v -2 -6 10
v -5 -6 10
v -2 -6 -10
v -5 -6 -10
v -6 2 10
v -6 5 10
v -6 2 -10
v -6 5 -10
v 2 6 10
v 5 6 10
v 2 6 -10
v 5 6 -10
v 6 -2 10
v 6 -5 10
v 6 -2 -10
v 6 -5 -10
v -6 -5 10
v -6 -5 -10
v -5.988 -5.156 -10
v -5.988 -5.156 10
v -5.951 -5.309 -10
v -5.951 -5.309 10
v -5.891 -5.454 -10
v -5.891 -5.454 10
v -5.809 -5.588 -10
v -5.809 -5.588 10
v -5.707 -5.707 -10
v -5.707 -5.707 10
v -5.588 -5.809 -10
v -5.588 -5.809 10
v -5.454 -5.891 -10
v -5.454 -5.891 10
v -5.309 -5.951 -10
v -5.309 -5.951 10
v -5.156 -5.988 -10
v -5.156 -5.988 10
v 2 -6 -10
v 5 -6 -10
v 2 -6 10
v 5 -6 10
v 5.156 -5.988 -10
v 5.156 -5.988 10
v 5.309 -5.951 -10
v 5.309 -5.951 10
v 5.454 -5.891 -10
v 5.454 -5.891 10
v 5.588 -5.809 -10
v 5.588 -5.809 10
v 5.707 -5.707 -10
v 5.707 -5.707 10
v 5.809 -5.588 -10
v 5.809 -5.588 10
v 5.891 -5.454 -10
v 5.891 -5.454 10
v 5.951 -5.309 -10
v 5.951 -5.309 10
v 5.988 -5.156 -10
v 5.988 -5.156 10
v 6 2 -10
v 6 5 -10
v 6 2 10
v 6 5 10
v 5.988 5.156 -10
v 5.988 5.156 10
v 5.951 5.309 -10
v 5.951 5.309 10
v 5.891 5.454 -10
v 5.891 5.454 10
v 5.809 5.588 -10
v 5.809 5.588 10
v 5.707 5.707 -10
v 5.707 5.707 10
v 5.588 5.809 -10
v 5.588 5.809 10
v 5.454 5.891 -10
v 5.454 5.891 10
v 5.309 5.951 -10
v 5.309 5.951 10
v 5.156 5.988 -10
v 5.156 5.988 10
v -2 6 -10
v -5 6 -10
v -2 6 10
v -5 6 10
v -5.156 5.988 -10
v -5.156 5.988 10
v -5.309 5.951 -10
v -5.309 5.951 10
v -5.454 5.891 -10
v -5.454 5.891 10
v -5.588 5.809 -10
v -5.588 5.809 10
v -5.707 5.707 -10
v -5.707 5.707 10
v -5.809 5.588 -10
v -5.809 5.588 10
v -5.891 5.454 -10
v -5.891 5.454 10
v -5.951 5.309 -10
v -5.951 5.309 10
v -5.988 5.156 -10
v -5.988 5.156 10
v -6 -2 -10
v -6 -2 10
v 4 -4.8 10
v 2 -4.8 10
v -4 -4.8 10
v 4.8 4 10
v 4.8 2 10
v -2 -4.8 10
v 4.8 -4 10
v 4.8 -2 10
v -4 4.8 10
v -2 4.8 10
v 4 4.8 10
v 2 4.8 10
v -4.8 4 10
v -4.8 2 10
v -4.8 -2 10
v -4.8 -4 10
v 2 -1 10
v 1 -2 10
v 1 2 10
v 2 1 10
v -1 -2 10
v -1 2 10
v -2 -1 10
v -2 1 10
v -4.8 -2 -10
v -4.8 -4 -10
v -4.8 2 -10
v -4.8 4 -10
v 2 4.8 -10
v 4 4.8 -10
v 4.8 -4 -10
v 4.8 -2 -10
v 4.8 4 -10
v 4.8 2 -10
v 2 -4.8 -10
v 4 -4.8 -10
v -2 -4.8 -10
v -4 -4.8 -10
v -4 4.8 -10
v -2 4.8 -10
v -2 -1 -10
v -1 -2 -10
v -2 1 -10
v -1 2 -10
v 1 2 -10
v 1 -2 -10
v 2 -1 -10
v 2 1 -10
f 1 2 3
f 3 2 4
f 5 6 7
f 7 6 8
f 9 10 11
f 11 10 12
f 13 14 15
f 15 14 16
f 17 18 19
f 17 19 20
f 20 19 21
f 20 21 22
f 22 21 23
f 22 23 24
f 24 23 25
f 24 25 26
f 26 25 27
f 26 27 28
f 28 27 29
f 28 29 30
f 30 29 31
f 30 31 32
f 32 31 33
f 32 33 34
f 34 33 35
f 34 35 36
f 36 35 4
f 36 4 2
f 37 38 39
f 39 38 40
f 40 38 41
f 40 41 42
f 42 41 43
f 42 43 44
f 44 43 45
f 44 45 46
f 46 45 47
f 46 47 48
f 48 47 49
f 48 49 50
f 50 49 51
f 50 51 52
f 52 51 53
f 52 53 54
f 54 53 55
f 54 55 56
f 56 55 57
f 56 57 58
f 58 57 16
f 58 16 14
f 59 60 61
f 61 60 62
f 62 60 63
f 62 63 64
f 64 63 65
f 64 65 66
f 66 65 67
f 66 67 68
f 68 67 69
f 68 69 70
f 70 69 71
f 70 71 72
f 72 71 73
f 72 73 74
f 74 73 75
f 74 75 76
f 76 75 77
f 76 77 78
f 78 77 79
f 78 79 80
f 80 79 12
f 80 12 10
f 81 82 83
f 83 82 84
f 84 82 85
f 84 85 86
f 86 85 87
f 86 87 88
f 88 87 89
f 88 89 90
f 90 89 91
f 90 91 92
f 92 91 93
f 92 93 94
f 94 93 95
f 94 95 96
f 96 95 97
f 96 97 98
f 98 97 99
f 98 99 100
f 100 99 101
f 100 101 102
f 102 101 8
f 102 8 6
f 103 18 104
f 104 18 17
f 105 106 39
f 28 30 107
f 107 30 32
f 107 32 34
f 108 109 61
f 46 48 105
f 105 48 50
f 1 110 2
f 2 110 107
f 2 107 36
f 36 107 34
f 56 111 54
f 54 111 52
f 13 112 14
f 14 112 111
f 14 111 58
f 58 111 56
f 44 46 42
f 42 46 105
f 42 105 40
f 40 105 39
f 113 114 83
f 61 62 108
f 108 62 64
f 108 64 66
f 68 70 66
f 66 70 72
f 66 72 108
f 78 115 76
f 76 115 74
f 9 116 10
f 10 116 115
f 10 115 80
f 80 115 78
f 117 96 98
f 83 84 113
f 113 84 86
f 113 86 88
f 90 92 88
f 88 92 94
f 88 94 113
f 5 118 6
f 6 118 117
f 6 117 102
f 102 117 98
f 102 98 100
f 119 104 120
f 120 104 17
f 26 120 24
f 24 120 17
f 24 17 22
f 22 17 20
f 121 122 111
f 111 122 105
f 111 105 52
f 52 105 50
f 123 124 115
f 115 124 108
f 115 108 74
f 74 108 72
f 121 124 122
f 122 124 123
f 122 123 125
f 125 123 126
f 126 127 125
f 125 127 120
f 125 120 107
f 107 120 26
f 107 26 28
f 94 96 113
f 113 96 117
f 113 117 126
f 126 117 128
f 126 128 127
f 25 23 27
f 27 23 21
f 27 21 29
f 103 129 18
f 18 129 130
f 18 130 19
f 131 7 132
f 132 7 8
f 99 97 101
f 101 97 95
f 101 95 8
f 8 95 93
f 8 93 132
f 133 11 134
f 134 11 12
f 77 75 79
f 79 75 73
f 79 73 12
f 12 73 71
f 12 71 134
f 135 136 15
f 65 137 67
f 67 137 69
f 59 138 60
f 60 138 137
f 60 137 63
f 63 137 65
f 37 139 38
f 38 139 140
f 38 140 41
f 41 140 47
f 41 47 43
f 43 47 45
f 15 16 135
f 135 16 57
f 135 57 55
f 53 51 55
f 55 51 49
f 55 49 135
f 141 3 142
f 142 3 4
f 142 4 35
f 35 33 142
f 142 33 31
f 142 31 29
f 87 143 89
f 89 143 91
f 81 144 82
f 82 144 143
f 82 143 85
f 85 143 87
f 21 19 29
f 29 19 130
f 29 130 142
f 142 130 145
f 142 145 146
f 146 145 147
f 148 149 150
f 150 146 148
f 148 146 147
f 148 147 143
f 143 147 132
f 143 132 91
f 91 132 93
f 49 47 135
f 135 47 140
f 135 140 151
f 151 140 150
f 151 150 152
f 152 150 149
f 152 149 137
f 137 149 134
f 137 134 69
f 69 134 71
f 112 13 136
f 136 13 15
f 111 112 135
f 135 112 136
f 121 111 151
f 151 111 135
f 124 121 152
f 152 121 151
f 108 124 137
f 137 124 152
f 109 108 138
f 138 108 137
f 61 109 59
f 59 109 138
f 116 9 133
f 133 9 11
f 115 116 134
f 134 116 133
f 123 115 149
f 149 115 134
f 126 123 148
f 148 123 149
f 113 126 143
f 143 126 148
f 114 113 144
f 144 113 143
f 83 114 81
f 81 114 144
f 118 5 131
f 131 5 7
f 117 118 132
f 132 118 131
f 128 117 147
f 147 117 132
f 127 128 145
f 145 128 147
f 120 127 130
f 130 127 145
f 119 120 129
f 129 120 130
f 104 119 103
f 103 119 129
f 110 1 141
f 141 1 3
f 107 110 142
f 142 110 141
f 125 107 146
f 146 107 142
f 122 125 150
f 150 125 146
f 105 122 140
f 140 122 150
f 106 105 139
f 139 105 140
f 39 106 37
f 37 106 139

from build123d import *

# Parameters (mm, degrees)
EXTRUSION1_DEPTH             = 10
ENL_V_MAT_EXTRU_1_DEPTH      = 300
R_P_TITION_CIRCULAIRE1_COUNT = 4


with BuildPart() as part:
    # Esquisse1 → Extrusion1 (new, symmetric)
    with BuildSketch(Plane.XY):
        with BuildLine():
            Line((-6, 5), (-6, -5))
            ThreePointArc((-6, -5), (-5.707106781, -5.707106781), (-5, -6))
            Line((-5, -6), (5, -6))
            ThreePointArc((5, -6), (5.707106781, -5.707106781), (6, -5))
            Line((6, -5), (6, 5))
            ThreePointArc((6, 5), (5.707106781, 5.707106781), (5, 6))
            Line((5, 6), (-5, 6))
            ThreePointArc((-5, 6), (-5.707106781, 5.707106781), (-6, 5))
        make_face()
    extrude(amount=EXTRUSION1_DEPTH, both=True)

    # Esquisse3 → Enlèv. mat.-Extru.1 (cut)
    with BuildSketch(Plane.XY.offset(10)):
        Polygon((6, 2), (4.8, 2), (4.8, 4), (2, 1), (2, -1), (4.8, -4), (4.8, -2), (6, -2), align=None)
    enl_v_mat_extru_1 = extrude(amount=-ENL_V_MAT_EXTRU_1_DEPTH, mode=Mode.SUBTRACT)

    # Répétition circulaire1: Enlèv. mat.-Extru.1 ×4 about axis
    r_p_tition_circulaire1_axis = Axis((0, 0, -1), (0, 0, 1))
    for i in range(1, R_P_TITION_CIRCULAIRE1_COUNT):
        add(enl_v_mat_extru_1.rotate(r_p_tition_circulaire1_axis, i * 360 / R_P_TITION_CIRCULAIRE1_COUNT), mode=Mode.SUBTRACT)


solid = part.part
